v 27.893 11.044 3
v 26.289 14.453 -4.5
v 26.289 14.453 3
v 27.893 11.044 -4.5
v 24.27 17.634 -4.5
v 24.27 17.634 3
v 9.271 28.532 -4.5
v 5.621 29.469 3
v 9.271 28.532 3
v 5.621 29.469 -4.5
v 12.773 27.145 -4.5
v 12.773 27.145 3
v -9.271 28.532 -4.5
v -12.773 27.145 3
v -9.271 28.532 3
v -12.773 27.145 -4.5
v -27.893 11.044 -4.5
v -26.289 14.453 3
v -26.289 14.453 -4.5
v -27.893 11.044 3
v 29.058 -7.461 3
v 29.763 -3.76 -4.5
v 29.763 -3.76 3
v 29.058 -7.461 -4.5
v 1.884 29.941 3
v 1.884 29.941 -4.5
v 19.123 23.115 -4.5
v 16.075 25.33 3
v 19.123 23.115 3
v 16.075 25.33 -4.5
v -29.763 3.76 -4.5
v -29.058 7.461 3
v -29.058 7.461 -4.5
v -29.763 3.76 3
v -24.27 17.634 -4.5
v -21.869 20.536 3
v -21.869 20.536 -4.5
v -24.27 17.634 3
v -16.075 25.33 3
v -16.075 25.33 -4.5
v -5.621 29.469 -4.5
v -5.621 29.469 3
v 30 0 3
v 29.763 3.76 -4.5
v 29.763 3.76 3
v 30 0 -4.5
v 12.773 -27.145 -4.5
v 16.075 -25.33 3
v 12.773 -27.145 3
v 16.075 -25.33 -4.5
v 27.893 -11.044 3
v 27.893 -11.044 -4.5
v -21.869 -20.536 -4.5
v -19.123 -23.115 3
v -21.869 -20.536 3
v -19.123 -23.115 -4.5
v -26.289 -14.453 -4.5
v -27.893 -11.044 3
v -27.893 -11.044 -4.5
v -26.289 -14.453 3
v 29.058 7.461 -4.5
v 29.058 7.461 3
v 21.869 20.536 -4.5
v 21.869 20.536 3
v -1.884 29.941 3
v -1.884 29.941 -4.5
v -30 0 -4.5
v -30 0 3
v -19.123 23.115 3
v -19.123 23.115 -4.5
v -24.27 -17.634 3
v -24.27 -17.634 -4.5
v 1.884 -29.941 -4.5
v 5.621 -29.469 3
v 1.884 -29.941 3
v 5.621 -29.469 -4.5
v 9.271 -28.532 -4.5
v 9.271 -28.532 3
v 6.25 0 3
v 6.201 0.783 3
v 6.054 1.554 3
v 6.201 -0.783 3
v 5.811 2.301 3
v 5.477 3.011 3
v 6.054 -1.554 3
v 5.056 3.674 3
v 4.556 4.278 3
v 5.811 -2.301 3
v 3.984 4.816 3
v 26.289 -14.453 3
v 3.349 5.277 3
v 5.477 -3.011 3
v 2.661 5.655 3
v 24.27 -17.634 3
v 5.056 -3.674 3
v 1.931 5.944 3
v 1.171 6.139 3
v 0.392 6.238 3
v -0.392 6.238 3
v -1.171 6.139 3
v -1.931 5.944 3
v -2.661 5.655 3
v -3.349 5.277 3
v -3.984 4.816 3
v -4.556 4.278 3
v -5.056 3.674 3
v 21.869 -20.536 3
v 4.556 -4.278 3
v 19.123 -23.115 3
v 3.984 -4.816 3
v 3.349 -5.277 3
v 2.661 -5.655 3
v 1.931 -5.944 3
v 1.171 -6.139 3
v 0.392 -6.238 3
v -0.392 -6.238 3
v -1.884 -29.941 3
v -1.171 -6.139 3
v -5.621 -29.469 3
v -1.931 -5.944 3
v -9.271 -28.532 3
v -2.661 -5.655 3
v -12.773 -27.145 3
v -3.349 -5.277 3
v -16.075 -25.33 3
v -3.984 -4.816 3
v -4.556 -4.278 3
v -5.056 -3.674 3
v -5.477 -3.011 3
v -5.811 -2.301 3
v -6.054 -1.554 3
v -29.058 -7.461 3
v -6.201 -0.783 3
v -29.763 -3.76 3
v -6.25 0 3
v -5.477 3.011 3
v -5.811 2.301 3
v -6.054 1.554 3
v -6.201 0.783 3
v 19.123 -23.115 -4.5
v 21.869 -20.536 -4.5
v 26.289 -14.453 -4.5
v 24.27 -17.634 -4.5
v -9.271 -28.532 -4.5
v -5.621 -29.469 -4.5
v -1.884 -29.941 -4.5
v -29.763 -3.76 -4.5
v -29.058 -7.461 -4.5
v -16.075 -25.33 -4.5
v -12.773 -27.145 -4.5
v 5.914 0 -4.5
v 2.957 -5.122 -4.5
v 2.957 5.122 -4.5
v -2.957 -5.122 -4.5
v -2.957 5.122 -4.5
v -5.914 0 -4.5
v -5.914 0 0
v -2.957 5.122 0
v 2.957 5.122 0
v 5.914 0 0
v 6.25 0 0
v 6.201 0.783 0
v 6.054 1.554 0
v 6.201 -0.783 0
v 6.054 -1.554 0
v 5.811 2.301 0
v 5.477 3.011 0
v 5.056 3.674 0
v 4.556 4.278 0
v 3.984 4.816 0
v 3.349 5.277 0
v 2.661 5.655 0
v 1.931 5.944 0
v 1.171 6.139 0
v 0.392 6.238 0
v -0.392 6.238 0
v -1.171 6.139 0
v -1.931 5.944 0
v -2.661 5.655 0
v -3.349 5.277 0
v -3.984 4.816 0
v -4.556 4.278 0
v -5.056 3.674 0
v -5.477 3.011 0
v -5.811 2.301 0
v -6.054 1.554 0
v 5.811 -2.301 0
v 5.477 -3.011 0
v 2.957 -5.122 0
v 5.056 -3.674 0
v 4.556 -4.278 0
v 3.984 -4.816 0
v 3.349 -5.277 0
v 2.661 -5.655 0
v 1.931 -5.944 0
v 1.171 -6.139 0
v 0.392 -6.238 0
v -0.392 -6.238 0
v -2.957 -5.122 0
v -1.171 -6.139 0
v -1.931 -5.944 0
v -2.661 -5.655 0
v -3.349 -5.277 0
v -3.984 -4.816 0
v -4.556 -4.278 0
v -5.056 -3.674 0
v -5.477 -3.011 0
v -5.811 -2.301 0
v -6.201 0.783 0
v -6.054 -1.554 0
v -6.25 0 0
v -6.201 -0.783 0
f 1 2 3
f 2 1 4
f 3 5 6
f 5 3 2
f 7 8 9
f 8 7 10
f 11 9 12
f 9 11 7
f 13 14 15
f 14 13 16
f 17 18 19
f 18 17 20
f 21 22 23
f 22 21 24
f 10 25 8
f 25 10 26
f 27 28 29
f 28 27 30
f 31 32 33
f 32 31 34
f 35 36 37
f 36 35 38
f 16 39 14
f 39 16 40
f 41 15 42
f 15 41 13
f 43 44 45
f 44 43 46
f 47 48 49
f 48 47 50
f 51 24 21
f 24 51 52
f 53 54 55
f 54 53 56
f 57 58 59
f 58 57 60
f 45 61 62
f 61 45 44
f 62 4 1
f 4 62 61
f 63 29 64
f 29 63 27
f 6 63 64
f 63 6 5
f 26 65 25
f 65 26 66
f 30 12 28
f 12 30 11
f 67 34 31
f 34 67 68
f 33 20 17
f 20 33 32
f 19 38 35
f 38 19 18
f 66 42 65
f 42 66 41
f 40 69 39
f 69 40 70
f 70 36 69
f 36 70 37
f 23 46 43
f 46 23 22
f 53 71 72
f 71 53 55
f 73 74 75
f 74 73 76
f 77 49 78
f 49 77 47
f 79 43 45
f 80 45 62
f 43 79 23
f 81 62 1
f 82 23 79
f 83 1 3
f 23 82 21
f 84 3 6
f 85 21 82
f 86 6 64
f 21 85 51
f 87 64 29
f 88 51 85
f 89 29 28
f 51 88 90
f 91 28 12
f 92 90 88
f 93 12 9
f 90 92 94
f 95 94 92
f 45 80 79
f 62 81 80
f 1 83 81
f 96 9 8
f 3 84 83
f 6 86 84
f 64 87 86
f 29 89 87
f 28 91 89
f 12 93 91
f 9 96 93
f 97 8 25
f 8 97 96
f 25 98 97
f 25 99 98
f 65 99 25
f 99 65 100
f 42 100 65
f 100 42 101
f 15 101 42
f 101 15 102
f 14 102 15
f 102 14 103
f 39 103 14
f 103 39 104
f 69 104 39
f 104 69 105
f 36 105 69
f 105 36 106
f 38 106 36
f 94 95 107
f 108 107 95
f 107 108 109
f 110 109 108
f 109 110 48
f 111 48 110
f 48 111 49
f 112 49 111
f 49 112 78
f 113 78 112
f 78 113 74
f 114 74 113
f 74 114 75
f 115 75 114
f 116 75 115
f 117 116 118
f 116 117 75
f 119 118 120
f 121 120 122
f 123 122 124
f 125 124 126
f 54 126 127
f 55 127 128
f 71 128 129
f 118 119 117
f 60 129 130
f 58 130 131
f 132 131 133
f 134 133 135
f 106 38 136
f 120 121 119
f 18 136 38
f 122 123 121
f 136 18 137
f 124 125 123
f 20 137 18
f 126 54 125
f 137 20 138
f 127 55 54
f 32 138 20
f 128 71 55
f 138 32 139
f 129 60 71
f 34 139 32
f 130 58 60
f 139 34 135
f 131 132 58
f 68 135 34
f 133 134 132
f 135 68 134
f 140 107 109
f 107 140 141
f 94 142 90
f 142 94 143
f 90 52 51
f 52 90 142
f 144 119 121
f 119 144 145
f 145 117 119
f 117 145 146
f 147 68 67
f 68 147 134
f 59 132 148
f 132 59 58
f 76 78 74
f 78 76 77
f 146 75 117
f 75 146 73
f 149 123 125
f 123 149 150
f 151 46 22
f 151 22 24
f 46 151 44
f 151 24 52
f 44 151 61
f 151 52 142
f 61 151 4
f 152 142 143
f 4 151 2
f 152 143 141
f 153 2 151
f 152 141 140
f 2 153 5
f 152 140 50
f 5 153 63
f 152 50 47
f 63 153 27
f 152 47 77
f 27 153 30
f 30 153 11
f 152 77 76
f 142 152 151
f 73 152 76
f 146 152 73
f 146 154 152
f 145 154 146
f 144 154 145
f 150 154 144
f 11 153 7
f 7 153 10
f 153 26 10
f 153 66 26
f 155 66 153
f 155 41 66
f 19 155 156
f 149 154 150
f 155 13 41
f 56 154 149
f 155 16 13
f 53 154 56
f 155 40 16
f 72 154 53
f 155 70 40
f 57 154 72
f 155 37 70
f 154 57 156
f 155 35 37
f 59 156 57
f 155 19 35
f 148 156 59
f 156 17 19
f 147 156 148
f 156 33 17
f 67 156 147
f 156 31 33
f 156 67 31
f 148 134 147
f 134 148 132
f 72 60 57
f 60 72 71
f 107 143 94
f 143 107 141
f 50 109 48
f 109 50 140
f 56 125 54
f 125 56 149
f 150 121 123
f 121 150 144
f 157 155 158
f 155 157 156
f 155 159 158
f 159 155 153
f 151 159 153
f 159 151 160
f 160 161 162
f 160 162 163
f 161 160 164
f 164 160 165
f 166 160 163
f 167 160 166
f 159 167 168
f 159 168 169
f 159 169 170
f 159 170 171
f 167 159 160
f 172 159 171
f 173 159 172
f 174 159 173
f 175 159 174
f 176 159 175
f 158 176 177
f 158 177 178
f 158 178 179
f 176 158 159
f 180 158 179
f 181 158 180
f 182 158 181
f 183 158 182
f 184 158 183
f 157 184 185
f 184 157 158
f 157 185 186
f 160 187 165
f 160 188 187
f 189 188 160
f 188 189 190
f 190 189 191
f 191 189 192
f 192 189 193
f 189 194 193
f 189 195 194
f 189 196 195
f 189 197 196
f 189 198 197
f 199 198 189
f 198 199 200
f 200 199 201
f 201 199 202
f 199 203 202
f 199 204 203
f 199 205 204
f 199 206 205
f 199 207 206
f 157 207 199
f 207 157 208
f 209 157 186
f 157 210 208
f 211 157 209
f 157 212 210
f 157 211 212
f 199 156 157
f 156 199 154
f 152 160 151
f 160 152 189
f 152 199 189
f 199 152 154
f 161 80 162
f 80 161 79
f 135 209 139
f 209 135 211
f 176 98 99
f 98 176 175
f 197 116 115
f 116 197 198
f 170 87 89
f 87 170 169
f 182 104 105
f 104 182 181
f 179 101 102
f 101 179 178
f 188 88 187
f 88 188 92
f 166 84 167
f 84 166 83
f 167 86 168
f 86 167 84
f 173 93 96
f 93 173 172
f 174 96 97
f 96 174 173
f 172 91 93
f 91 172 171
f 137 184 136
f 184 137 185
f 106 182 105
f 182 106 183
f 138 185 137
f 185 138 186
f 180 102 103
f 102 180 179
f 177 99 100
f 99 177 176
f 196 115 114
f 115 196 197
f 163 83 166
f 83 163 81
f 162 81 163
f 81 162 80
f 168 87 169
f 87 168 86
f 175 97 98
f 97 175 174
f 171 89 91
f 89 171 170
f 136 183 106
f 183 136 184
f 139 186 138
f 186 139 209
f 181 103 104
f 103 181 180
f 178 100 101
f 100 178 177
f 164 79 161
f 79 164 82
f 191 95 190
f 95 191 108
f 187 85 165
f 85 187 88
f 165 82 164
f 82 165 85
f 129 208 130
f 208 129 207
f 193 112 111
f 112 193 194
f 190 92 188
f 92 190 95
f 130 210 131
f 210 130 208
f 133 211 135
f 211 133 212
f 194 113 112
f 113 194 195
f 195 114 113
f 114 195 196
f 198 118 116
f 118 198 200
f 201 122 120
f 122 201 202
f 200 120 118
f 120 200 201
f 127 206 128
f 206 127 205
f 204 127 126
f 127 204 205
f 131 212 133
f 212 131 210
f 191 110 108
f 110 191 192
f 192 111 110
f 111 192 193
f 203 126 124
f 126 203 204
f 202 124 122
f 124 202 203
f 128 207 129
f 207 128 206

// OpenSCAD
$fn = 50;


difference() {
	union() {
		translate(v = [0, 0, -4.5000000000]) {
			cylinder(h = 7.5000000000, r = 30.0000000000);
		}
		#translate(v = [0, 0, -6.0000000000]) {
			cylinder(h = 6, r = 2.8750000000);
		}
	}
	union() {
		translate(v = [0, 0, 0]) {
			rotate(a = [0, 0, 0]) {
				difference() {
					union() {
						translate(v = [0, 0, -5]) {
							linear_extrude(height = 5) {
								polygon(points = [[5.9142500000, 0.0000000000], [2.9571250000, 5.1218907443], [-2.9571250000, 5.1218907443], [-5.9142500000, 0.0000000000], [-2.9571250000, -5.1218907443], [2.9571250000, -5.1218907443]]);
							}
						}
					}
					union();
				}
			}
		}
		#cylinder(h = 3, r = 6.2500000000);
		#translate(v = [0, 0, -100.0000000000]) {
			cylinder(h = 200, r = 3.2500000000);
		}
	}
}
